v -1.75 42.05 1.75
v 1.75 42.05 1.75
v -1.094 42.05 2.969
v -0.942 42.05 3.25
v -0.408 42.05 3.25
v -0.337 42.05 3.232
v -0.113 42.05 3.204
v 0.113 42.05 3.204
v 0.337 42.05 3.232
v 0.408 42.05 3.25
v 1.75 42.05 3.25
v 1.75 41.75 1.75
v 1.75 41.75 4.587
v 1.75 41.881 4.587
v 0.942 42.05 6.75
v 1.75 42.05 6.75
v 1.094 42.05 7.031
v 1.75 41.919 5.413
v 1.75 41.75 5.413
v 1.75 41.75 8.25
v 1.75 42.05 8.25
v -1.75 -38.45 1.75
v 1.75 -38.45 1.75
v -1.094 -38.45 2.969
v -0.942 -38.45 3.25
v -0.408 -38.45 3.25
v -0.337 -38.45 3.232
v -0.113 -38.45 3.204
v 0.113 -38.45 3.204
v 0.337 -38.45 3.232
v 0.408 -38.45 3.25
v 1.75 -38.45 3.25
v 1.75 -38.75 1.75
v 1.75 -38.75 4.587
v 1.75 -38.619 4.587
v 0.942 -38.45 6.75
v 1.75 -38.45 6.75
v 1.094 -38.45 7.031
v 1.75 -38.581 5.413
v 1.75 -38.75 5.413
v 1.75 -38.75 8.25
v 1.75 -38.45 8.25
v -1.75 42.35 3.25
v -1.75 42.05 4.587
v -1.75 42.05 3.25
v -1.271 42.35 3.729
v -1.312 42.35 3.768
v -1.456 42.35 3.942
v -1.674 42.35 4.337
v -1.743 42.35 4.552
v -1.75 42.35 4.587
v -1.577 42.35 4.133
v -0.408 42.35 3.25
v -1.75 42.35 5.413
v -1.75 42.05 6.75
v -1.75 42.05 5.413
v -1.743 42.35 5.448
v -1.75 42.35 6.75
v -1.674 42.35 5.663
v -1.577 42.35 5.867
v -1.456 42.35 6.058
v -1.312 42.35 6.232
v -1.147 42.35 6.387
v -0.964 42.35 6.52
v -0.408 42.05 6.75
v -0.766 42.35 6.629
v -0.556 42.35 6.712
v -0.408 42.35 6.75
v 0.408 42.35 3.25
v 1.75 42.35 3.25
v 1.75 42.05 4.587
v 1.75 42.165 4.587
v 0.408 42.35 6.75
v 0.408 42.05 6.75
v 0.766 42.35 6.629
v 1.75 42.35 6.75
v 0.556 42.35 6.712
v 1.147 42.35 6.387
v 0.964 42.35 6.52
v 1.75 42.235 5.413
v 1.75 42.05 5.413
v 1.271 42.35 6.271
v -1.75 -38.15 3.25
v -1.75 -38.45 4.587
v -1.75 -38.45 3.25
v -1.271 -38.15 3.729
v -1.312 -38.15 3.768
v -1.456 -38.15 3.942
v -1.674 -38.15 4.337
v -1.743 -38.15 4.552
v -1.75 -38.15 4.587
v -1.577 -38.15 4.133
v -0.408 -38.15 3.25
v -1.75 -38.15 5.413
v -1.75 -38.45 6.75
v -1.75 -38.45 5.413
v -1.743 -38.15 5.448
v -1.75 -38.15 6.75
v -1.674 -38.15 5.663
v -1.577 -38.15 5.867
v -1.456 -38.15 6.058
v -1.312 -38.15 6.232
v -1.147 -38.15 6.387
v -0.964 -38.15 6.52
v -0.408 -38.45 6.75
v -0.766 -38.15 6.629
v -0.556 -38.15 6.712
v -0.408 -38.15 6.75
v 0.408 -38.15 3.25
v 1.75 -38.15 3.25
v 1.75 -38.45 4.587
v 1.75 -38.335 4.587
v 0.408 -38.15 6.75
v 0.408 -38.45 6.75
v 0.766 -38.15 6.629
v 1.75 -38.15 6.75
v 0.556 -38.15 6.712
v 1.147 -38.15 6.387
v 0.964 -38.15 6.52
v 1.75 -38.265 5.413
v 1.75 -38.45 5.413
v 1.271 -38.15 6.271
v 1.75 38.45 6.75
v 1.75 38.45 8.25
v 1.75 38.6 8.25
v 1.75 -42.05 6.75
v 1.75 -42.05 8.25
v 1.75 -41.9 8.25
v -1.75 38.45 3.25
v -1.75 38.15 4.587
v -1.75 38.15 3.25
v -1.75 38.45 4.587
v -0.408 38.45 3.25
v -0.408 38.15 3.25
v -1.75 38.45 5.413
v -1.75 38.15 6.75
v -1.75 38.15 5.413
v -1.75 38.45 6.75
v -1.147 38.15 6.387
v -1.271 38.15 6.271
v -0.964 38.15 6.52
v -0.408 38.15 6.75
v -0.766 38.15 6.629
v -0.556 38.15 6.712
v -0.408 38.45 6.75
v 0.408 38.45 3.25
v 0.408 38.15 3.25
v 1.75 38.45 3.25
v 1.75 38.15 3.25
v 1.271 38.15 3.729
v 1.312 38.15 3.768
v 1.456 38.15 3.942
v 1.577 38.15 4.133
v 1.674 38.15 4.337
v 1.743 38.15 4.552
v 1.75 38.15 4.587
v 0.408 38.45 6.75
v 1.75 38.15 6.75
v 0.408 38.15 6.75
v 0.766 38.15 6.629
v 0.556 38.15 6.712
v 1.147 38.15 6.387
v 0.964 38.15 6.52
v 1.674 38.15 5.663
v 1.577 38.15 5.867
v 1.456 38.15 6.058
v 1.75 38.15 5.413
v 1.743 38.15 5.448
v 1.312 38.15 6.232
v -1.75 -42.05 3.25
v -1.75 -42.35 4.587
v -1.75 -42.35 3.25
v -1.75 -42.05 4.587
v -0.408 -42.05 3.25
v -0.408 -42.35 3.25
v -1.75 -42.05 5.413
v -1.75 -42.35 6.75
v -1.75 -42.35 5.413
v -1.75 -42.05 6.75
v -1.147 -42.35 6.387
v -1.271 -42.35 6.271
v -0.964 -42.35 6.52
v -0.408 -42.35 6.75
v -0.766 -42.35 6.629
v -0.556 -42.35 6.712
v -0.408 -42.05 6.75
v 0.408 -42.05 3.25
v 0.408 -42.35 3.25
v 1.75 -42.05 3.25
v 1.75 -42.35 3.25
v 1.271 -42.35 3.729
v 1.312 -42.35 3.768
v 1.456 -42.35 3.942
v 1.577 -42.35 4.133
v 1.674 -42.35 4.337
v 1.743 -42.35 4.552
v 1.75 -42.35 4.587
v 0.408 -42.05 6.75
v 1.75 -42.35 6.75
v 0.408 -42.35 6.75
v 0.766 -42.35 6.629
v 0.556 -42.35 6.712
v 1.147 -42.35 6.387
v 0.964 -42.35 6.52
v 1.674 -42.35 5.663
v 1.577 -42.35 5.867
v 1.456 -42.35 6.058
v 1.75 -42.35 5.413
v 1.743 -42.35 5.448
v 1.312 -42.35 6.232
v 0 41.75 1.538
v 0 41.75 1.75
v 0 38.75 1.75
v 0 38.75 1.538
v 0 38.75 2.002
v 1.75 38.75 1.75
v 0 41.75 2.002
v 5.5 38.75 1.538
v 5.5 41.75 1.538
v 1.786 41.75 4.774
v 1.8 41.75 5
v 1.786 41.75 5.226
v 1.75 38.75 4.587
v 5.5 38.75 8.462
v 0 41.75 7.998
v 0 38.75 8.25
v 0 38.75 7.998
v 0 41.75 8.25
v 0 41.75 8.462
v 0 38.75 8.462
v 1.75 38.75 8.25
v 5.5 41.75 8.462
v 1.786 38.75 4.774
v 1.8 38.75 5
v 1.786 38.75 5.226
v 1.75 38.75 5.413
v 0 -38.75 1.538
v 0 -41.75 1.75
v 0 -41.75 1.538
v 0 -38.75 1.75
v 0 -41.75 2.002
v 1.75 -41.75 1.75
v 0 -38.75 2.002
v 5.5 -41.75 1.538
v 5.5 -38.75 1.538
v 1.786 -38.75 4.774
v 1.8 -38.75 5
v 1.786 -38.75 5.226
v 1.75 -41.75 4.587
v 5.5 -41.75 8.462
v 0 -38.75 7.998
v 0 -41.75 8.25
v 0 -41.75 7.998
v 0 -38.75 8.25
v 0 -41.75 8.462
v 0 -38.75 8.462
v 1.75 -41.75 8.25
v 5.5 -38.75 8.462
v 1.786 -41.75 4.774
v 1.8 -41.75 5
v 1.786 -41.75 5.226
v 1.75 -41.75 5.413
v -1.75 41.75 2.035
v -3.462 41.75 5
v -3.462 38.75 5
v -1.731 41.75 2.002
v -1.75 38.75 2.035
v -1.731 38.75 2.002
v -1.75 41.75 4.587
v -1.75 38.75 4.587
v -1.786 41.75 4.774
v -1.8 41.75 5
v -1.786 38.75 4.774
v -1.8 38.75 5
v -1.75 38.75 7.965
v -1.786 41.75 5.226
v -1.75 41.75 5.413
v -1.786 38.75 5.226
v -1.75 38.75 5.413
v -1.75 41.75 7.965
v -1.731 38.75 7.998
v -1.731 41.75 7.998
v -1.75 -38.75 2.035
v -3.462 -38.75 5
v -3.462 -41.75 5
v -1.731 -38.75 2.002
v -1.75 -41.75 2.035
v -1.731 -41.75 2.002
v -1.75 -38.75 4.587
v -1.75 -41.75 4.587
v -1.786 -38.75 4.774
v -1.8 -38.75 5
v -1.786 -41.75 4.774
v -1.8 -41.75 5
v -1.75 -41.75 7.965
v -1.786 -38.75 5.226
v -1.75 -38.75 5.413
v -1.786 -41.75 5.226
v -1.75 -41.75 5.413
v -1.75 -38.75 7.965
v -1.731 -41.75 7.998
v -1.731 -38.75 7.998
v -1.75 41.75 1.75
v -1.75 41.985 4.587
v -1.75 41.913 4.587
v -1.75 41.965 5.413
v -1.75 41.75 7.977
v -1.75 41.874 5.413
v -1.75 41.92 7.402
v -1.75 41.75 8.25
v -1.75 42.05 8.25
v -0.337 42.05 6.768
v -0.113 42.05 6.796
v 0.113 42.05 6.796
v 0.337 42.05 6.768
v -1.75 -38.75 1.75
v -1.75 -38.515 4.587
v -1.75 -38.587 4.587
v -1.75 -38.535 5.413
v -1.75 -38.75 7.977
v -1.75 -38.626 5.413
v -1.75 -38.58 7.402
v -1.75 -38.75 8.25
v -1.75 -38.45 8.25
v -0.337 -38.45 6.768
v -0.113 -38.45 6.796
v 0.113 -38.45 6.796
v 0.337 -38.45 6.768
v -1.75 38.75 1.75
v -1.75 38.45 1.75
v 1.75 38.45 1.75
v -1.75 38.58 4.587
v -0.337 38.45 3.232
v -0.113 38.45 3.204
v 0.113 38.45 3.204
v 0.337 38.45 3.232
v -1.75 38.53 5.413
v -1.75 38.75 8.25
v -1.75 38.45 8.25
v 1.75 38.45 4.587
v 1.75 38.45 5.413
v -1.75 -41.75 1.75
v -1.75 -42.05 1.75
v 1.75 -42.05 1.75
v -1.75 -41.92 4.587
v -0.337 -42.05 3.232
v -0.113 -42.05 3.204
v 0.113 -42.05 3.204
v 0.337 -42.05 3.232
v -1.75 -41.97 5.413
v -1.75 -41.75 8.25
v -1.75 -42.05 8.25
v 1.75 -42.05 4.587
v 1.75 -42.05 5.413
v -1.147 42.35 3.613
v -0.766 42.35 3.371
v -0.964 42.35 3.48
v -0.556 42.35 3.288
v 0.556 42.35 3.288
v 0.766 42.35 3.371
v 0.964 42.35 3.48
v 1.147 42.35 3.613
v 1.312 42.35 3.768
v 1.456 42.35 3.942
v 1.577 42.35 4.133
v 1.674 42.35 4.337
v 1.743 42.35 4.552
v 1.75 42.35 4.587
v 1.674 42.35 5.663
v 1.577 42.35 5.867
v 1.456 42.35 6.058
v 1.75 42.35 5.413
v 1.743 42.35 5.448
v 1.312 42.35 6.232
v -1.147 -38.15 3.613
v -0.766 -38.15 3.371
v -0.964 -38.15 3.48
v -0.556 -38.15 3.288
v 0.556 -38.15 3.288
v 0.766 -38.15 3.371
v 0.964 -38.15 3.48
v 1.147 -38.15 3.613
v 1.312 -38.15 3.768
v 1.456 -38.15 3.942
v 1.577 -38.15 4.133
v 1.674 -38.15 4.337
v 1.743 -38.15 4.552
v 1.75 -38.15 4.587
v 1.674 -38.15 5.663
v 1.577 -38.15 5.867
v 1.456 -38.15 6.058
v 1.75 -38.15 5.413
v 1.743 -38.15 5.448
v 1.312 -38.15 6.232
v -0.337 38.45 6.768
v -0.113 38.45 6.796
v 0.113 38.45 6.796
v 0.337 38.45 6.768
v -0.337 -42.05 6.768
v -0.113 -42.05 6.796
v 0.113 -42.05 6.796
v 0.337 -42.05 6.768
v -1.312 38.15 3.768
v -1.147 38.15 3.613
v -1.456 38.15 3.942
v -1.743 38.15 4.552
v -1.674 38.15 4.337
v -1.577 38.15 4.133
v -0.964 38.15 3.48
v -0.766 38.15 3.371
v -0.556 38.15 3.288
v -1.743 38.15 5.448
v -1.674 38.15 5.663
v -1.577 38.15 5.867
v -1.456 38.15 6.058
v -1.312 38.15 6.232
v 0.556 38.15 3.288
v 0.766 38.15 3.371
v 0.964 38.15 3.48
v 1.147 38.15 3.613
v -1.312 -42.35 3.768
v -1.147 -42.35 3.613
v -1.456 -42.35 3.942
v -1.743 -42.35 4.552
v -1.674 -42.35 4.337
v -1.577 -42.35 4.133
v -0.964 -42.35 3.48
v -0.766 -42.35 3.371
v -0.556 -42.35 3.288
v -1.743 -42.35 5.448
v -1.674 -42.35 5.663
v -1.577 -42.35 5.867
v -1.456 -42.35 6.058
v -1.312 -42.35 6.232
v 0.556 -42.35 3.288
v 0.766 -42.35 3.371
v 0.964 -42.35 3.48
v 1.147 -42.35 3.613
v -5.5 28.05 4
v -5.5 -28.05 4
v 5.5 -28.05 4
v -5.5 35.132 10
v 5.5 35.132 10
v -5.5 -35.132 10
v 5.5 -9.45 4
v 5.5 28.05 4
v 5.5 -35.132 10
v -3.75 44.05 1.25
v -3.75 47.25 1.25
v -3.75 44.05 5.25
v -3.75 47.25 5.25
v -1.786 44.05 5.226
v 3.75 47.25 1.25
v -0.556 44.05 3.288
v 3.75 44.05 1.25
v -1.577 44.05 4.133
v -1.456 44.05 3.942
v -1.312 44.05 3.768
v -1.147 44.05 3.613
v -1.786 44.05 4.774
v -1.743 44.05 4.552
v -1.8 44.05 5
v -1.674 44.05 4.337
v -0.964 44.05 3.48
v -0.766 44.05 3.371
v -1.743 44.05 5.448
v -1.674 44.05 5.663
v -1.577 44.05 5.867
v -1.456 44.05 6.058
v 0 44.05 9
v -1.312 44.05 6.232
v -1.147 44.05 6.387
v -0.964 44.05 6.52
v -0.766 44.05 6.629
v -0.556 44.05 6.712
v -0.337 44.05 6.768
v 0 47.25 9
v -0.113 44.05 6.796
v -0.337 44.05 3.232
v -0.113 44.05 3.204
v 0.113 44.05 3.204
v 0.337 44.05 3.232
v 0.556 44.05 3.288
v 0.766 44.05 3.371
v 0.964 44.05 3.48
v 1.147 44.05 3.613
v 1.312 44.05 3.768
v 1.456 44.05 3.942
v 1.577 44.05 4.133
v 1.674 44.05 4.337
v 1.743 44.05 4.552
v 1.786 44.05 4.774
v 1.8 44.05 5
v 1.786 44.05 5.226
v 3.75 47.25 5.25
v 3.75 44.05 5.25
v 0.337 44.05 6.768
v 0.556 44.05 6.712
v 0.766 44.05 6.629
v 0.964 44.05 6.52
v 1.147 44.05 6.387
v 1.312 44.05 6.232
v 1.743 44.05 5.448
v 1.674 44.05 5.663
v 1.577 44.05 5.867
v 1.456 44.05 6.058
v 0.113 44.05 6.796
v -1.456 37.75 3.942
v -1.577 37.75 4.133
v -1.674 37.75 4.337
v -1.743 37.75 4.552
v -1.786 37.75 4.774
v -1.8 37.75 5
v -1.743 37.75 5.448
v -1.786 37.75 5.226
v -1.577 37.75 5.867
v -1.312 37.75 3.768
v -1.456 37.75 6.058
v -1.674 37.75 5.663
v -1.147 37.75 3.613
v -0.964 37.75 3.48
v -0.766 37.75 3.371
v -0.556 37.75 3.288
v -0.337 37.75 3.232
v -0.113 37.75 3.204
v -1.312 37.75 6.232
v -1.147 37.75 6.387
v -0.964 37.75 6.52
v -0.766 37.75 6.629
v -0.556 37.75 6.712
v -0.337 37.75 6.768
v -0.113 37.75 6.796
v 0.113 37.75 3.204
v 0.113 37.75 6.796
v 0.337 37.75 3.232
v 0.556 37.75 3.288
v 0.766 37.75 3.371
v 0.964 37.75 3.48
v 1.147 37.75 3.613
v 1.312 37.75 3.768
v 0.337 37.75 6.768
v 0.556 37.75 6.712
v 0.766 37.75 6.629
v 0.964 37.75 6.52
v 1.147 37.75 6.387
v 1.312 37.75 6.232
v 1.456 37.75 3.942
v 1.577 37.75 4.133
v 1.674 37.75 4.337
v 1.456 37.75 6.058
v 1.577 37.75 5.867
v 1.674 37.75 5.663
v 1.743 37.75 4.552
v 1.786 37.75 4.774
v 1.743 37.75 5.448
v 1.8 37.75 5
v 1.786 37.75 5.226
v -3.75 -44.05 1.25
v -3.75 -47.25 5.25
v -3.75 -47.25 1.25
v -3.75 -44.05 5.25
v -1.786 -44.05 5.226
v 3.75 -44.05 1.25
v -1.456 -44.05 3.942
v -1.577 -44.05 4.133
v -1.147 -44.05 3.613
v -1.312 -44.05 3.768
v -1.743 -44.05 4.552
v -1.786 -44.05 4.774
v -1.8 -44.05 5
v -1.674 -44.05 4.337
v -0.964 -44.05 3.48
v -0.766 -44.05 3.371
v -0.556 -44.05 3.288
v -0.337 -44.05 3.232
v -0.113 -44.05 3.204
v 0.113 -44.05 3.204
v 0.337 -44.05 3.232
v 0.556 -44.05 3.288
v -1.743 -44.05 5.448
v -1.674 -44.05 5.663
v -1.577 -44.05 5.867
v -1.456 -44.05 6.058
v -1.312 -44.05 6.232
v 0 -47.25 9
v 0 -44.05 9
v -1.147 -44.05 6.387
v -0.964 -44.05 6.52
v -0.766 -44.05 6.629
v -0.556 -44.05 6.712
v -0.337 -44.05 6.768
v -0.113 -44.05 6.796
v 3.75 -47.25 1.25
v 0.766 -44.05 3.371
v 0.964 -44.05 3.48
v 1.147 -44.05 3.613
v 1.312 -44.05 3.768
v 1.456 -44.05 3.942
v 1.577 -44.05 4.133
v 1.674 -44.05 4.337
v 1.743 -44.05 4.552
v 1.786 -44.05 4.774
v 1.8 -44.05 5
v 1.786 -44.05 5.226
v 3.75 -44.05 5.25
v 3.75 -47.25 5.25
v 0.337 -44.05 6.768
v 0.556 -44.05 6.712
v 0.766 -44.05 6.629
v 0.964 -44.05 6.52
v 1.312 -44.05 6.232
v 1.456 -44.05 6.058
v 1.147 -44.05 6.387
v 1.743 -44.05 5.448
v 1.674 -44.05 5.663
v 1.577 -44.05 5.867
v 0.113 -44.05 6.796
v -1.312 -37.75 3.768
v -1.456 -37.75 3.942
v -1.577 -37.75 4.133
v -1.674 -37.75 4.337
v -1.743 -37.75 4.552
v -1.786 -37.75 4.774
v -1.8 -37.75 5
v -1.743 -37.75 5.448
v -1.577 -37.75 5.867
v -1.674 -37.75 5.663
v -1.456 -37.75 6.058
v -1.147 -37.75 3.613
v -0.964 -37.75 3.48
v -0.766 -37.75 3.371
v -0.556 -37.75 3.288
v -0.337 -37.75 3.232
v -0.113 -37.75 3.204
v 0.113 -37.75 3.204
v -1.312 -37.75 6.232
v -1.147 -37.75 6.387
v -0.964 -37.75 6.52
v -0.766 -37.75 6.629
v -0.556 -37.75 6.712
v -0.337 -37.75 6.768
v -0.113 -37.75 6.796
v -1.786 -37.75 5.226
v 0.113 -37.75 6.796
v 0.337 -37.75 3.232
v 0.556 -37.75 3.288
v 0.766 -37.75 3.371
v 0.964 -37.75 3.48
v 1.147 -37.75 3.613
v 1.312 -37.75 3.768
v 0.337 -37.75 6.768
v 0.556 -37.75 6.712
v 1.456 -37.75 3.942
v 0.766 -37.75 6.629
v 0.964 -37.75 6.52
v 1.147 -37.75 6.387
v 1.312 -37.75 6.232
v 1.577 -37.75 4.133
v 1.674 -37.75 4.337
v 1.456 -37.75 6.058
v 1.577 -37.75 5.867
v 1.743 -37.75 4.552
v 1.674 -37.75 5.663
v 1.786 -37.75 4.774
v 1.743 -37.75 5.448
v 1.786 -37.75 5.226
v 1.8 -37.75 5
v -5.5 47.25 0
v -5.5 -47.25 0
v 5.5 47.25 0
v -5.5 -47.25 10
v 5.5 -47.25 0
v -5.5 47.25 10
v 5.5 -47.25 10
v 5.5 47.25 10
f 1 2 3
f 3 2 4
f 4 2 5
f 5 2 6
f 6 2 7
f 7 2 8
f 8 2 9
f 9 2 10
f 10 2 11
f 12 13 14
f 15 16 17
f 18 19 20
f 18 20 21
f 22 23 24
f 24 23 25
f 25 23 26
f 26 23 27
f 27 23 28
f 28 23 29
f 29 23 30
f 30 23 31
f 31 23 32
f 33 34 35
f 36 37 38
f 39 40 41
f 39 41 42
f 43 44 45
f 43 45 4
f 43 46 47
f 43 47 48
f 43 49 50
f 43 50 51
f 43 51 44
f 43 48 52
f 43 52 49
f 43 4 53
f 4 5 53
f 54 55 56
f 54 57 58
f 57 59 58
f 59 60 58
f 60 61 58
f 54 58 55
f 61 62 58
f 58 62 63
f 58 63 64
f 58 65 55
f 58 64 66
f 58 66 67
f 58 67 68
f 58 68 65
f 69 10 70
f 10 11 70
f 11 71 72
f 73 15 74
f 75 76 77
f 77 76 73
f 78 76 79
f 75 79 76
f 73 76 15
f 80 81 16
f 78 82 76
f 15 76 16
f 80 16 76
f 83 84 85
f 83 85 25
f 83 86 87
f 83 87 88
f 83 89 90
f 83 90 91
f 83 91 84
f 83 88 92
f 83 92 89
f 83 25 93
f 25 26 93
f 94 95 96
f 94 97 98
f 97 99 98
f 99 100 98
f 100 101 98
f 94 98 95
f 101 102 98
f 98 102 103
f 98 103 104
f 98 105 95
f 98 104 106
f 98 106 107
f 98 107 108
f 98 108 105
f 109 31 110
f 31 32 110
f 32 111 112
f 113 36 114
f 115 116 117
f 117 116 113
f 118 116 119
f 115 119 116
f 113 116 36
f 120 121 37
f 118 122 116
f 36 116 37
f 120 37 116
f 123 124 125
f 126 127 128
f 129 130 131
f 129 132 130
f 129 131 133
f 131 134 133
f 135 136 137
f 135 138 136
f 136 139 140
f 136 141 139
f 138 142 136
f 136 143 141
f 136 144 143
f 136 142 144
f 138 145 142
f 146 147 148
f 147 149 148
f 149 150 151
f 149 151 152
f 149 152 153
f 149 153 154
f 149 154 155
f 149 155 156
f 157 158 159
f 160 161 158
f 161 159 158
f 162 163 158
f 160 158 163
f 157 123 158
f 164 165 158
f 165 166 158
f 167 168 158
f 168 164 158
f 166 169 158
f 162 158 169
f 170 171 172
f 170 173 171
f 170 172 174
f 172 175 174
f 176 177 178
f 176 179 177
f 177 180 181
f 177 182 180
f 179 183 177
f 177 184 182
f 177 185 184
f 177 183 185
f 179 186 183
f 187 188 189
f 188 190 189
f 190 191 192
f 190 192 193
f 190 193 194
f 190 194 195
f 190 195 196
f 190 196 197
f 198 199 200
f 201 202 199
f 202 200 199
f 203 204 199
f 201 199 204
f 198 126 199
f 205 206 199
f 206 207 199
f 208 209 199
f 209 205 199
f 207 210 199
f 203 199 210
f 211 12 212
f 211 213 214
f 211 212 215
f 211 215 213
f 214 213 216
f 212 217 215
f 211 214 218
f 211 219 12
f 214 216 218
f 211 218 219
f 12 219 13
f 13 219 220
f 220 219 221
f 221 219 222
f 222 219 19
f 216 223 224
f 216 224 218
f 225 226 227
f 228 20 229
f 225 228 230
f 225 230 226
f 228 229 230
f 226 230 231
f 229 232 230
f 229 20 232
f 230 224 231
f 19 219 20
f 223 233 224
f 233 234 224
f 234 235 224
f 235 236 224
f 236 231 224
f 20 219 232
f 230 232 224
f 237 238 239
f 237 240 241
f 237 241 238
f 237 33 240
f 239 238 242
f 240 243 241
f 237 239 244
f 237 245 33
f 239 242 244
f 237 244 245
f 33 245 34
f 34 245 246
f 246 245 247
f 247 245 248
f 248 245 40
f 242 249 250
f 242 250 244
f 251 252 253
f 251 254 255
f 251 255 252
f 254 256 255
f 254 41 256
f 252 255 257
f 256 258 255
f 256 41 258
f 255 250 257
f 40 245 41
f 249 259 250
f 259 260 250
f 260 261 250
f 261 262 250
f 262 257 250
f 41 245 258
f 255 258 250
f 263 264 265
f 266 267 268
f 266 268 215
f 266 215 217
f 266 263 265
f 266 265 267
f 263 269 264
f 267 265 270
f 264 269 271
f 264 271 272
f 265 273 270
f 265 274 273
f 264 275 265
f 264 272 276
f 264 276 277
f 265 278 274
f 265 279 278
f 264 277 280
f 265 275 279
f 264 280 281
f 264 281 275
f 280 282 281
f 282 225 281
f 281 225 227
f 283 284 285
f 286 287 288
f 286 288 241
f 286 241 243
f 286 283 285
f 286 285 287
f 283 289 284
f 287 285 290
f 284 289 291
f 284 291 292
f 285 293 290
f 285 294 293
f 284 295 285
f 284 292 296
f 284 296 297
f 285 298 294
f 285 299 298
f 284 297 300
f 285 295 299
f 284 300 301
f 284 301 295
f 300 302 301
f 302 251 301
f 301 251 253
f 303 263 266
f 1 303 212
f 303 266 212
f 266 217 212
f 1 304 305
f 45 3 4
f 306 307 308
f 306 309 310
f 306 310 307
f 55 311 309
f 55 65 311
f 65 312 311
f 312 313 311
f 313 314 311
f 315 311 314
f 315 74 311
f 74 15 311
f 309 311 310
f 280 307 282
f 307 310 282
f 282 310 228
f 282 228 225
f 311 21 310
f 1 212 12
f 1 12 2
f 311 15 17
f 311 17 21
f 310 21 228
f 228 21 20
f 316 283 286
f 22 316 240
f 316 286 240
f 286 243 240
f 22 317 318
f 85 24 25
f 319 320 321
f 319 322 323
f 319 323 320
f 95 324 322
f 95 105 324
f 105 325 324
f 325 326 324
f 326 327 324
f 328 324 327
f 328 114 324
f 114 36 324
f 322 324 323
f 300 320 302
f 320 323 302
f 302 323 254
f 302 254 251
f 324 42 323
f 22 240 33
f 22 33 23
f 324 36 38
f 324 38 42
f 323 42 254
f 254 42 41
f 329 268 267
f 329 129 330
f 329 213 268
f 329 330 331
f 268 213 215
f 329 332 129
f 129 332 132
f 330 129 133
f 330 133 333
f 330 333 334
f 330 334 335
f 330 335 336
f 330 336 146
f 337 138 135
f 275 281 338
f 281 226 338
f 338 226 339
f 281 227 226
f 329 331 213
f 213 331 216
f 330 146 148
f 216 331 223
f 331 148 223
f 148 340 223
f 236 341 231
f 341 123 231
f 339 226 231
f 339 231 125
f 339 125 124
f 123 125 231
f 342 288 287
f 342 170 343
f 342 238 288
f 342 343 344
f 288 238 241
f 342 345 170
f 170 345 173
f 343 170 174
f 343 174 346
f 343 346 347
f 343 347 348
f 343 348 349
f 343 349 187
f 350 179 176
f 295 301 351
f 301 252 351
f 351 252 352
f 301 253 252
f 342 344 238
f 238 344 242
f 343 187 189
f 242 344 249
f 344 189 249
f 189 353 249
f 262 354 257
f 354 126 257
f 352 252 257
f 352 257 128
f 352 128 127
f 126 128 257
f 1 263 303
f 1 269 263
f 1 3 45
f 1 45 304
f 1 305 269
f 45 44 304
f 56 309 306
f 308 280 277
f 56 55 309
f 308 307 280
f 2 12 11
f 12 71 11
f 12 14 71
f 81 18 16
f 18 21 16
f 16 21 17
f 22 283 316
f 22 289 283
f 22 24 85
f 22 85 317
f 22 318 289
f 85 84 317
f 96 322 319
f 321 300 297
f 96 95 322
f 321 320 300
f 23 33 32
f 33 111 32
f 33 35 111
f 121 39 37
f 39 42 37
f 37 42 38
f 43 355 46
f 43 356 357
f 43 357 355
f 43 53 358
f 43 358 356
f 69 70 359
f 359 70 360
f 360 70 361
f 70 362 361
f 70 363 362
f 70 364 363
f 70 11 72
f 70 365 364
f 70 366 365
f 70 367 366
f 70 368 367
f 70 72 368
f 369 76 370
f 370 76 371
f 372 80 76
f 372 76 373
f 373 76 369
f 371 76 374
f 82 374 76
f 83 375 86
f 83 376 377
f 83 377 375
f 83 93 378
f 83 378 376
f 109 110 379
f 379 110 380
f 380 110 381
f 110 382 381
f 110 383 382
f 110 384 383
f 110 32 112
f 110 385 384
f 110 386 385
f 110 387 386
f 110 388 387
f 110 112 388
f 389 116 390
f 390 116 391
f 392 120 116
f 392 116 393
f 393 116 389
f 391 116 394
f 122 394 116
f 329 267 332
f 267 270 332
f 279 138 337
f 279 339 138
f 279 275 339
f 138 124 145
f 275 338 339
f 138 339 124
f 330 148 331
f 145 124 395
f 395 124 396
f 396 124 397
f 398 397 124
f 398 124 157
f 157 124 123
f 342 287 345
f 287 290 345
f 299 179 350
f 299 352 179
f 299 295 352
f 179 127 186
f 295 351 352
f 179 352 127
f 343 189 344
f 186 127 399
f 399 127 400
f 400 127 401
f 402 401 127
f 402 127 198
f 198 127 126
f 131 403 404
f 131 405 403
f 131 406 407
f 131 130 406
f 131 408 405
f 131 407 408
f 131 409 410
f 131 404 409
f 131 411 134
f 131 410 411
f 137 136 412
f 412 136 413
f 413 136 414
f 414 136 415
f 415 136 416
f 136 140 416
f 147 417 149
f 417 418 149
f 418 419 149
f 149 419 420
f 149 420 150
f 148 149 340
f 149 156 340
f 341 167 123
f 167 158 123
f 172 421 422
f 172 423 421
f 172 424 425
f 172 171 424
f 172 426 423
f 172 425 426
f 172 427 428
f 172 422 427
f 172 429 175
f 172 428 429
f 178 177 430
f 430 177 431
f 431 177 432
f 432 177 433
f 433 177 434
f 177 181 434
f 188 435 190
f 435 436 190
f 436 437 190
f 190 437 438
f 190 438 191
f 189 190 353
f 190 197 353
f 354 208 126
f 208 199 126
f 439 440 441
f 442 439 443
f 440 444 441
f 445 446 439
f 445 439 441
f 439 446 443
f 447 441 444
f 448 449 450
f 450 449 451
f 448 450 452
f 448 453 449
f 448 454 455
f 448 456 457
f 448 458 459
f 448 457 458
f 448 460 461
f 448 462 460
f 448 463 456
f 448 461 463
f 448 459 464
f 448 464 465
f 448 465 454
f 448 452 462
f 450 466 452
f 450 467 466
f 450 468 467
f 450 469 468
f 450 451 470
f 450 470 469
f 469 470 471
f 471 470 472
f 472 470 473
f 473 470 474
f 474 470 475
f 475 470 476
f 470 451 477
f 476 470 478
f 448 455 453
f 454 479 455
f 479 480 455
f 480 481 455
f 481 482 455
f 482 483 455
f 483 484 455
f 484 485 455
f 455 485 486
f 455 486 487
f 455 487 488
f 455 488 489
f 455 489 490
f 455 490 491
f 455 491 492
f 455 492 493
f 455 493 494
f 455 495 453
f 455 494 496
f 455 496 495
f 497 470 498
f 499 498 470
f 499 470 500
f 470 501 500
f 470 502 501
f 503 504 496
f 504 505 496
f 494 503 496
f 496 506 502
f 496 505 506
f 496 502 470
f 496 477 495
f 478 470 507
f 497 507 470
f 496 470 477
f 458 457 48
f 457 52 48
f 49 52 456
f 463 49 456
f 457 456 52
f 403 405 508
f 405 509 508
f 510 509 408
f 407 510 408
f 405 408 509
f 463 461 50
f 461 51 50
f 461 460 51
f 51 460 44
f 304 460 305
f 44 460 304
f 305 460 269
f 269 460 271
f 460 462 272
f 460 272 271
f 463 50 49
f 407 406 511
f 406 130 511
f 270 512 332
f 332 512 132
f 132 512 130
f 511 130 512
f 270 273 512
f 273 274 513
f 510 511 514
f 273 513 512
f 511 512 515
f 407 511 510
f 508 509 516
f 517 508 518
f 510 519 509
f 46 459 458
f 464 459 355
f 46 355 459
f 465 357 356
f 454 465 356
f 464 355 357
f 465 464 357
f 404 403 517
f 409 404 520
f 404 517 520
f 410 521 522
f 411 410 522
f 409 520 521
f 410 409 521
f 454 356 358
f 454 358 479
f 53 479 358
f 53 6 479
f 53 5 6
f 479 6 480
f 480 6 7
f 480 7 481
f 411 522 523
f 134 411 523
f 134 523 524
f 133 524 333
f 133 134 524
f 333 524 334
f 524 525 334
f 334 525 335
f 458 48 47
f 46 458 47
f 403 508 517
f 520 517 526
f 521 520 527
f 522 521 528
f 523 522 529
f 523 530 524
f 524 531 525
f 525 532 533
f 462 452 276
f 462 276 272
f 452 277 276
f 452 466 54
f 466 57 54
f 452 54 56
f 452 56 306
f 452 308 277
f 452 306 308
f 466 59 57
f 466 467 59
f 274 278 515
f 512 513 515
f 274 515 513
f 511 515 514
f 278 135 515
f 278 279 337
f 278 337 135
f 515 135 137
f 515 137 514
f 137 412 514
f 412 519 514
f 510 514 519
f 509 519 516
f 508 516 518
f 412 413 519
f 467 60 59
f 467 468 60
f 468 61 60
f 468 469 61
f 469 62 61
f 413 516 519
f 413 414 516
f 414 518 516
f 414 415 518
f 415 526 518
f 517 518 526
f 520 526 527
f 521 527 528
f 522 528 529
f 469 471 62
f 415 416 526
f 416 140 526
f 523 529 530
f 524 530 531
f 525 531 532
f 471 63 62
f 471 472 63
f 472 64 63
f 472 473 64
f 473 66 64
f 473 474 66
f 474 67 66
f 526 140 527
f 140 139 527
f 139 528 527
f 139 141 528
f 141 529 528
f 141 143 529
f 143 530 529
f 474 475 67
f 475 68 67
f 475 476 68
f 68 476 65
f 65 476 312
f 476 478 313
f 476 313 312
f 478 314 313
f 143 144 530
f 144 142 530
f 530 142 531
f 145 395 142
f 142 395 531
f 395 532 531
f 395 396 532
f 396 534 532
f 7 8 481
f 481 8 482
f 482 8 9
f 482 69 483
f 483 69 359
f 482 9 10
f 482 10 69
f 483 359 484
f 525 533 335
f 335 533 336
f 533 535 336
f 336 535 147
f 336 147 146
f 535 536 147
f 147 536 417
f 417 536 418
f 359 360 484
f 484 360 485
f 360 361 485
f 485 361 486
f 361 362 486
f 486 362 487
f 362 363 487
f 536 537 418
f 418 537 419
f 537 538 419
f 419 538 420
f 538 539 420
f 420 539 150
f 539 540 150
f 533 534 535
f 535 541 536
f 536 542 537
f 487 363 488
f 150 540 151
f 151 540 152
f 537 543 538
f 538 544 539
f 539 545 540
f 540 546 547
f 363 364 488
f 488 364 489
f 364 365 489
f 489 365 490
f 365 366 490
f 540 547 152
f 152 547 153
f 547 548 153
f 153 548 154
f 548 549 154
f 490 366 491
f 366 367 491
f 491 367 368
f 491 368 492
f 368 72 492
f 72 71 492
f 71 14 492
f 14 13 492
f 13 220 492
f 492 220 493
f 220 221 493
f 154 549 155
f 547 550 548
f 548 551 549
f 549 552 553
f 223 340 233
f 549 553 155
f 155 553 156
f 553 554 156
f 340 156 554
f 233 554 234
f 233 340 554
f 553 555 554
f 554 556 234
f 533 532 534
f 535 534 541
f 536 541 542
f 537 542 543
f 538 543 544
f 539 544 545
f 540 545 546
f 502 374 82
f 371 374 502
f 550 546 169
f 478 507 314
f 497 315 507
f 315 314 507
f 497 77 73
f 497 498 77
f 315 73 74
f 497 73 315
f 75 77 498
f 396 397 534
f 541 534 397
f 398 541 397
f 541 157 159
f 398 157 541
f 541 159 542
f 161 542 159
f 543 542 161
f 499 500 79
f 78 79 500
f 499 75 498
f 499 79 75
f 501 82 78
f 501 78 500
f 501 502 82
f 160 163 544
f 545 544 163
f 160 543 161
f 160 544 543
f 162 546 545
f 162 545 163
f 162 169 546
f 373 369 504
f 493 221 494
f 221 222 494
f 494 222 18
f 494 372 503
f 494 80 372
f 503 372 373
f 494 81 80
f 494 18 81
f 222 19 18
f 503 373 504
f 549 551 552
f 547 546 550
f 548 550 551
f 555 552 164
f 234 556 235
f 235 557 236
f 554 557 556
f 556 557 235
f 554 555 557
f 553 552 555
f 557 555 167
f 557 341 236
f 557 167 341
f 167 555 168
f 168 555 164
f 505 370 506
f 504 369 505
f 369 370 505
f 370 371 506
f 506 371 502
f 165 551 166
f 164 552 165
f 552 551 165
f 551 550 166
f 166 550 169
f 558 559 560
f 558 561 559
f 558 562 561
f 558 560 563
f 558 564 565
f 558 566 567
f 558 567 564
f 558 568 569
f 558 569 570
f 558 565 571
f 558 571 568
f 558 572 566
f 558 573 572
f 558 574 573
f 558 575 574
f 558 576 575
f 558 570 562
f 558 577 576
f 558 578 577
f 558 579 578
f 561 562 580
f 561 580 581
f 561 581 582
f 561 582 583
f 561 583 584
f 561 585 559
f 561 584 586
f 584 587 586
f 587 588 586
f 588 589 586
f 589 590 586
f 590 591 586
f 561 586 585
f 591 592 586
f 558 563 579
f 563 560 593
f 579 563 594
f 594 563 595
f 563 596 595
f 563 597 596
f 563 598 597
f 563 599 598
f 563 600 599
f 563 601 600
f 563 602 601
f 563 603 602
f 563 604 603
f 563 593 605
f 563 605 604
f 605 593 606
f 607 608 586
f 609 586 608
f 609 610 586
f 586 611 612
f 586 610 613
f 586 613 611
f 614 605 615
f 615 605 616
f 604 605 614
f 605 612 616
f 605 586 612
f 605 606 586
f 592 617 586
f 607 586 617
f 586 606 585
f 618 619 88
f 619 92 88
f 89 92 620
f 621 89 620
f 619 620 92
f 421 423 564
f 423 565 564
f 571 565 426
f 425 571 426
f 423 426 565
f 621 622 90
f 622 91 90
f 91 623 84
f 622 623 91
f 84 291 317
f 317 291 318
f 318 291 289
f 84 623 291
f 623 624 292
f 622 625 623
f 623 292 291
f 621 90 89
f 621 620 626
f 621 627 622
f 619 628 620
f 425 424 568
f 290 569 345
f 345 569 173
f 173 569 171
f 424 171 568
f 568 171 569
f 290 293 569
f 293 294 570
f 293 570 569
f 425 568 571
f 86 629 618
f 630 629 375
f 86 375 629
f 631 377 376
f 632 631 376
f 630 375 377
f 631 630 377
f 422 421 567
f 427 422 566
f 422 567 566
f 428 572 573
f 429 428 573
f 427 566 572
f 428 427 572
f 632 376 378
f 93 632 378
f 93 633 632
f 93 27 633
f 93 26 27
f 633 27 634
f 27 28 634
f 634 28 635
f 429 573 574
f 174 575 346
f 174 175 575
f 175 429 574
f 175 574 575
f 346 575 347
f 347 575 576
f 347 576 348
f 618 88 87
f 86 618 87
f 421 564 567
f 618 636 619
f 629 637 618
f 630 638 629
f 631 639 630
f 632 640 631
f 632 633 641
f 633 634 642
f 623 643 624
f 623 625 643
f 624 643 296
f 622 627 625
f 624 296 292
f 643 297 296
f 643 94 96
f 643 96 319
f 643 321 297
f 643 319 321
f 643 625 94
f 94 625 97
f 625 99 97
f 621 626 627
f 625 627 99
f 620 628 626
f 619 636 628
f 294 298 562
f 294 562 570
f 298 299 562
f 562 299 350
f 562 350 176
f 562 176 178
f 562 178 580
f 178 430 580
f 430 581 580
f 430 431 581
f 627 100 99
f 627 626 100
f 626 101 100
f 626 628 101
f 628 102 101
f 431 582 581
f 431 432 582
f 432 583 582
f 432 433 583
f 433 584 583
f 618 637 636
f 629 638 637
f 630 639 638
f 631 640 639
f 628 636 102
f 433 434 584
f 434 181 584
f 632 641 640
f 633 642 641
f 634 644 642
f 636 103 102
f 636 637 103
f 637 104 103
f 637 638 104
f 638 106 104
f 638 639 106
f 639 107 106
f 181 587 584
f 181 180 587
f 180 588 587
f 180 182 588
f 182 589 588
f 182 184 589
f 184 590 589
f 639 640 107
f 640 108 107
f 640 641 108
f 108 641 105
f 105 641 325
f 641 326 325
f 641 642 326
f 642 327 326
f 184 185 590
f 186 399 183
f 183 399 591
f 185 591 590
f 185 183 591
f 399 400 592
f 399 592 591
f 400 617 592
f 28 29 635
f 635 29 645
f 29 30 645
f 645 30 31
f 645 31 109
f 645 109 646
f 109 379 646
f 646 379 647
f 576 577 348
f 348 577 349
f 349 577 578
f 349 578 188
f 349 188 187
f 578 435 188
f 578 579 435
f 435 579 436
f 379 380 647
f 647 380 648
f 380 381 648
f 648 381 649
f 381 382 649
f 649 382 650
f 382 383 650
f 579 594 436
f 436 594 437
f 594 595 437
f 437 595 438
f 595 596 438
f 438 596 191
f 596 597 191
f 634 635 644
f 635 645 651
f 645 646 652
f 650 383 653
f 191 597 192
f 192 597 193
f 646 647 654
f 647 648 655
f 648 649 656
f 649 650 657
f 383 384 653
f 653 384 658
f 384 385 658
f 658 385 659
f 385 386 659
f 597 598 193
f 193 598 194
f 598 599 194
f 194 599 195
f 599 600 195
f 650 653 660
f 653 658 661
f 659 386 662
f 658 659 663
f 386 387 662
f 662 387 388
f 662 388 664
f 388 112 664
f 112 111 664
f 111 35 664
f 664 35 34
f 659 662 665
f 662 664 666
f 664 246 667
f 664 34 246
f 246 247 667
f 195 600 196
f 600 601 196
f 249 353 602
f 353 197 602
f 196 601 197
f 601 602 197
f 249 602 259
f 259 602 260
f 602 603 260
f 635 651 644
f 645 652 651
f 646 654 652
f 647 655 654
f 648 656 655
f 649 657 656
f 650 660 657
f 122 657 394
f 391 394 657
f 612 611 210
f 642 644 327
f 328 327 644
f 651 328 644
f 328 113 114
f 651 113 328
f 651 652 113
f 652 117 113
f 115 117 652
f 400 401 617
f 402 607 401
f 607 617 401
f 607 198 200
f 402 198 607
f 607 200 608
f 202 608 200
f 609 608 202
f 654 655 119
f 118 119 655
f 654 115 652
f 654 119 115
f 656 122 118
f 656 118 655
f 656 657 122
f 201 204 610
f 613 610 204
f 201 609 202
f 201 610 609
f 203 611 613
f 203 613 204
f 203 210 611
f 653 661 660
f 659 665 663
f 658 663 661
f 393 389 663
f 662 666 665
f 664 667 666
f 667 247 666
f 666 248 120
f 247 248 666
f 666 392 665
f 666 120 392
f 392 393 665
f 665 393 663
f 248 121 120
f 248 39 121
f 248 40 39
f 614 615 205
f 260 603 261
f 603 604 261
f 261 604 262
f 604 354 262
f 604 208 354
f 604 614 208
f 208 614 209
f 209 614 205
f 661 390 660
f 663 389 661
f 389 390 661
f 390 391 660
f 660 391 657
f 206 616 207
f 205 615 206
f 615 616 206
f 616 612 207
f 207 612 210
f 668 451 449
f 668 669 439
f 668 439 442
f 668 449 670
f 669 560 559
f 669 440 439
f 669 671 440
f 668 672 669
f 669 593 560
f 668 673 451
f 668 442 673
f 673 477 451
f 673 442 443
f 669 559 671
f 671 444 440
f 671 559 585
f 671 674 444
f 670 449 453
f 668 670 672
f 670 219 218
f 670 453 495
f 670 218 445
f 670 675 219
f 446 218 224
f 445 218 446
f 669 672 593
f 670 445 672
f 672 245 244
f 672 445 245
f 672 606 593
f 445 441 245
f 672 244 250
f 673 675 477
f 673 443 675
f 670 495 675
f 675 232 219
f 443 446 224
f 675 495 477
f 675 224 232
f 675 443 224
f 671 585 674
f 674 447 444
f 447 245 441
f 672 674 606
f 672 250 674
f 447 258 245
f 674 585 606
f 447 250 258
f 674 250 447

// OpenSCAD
$fn = 50;

difference() {
	union() {
		translate(v = [0, 47.25, 0]) {
			rotate(a = [90, 0, 0]) {
				difference() {
					union() {
						translate(v = [-5.5, 0, 0]) {
							cube(size = [11.0, 10.0, 94.5]);
						}
					}
					union() {
						translate(v = [0, 5.0, 5.5]) {
							rotate(a = [0, 0, 0]) {
								difference() {
									union() {
										translate(v = [-1.75, -3.25, -0.3]) {
											cube(size = [3.5, 6.5, 0.3]);
										}
										translate(v = [-1.75, -1.75, -0.6]) {
											cube(size = [3.5, 3.5, 0.3]);
										}
										translate(v = [-1.75, -3.25, 3]) {
											cube(size = [3.5, 6.5, 0.3]);
										}
										translate(v = [-1.75, -1.75, 3.3]) {
											cube(size = [3.5, 3.5, 0.3]);
										}
										translate(v = [0.0, -3.4619999999999997, 0]) {
											cube(size = [20, 6.9239999999999995, 3]);
										}
										linear_extrude(height = 3) {
											polygon(points = [[3.4619999999999997, 0.0], [1.7310000000000003, 2.9981799479017264], [-1.7309999999999992, 2.9981799479017264], [-3.4619999999999997, 4.2397272186481365e-16], [-1.7310000000000014, -2.998179947901726], [1.7309999999999977, -2.9981799479017277]]);
										}
										translate(v = [-1.75, -3.25, -0.3]) {
											cube(size = [3.5, 6.5, 0.3]);
										}
										translate(v = [-1.75, -1.75, -0.6]) {
											cube(size = [3.5, 3.5, 0.3]);
										}
										translate(v = [-1.75, -3.25, 3]) {
											cube(size = [3.5, 6.5, 0.3]);
										}
										translate(v = [-1.75, -1.75, 3.3]) {
											cube(size = [3.5, 3.5, 0.3]);
										}
										translate(v = [-1.75, -3.25, -0.3]) {
											cube(size = [3.5, 6.5, 0.3]);
										}
										translate(v = [-1.75, -1.75, -0.6]) {
											cube(size = [3.5, 3.5, 0.3]);
										}
										translate(v = [-1.75, -3.25, 3]) {
											cube(size = [3.5, 6.5, 0.3]);
										}
										translate(v = [-1.75, -1.75, 3.3]) {
											cube(size = [3.5, 3.5, 0.3]);
										}
									}
									union();
								}
							}
						}
						translate(v = [0, 5.0, 86.0]) {
							rotate(a = [0, 0, 0]) {
								difference() {
									union() {
										translate(v = [-1.75, -3.25, -0.3]) {
											cube(size = [3.5, 6.5, 0.3]);
										}
										translate(v = [-1.75, -1.75, -0.6]) {
											cube(size = [3.5, 3.5, 0.3]);
										}
										translate(v = [-1.75, -3.25, 3]) {
											cube(size = [3.5, 6.5, 0.3]);
										}
										translate(v = [-1.75, -1.75, 3.3]) {
											cube(size = [3.5, 3.5, 0.3]);
										}
										translate(v = [0.0, -3.4619999999999997, 0]) {
											cube(size = [20, 6.9239999999999995, 3]);
										}
										linear_extrude(height = 3) {
											polygon(points = [[3.4619999999999997, 0.0], [1.7310000000000003, 2.9981799479017264], [-1.7309999999999992, 2.9981799479017264], [-3.4619999999999997, 4.2397272186481365e-16], [-1.7310000000000014, -2.998179947901726], [1.7309999999999977, -2.9981799479017277]]);
										}
										translate(v = [-1.75, -3.25, -0.3]) {
											cube(size = [3.5, 6.5, 0.3]);
										}
										translate(v = [-1.75, -1.75, -0.6]) {
											cube(size = [3.5, 3.5, 0.3]);
										}
										translate(v = [-1.75, -3.25, 3]) {
											cube(size = [3.5, 6.5, 0.3]);
										}
										translate(v = [-1.75, -1.75, 3.3]) {
											cube(size = [3.5, 3.5, 0.3]);
										}
										translate(v = [-1.75, -3.25, -0.3]) {
											cube(size = [3.5, 6.5, 0.3]);
										}
										translate(v = [-1.75, -1.75, -0.6]) {
											cube(size = [3.5, 3.5, 0.3]);
										}
										translate(v = [-1.75, -3.25, 3]) {
											cube(size = [3.5, 6.5, 0.3]);
										}
										translate(v = [-1.75, -1.75, 3.3]) {
											cube(size = [3.5, 3.5, 0.3]);
										}
									}
									union();
								}
							}
						}
						translate(v = [-5.6, 0, 0]) {
							rotate(a = [90, 0, 90]) {
								linear_extrude(height = 11.2) {
									polygon(points = [[10.1, 12.0], [10.1, 82.5], [4.0, 75.3], [4.0, 19.2]]);
								}
							}
						}
						translate(v = [0, 0, -0.1]) {
							linear_extrude(height = 3.3000000000000003) {
								polygon(points = [[-3.75, 1.25], [3.75, 1.25], [3.75, 5.25], [0, 9.0], [-3.75, 5.25]]);
							}
						}
						translate(v = [0, 5.0, -0.1]) {
							cylinder(h = 9.6, r = 1.8);
						}
						translate(v = [0, 0, 91.3]) {
							linear_extrude(height = 3.3000000000000003) {
								polygon(points = [[-3.75, 1.25], [3.75, 1.25], [3.75, 5.25], [0, 9.0], [-3.75, 5.25]]);
							}
						}
						translate(v = [0, 5.0, 85.0]) {
							cylinder(h = 9.6, r = 1.8);
						}
					}
				}
			}
		}
	}
	union();
}
